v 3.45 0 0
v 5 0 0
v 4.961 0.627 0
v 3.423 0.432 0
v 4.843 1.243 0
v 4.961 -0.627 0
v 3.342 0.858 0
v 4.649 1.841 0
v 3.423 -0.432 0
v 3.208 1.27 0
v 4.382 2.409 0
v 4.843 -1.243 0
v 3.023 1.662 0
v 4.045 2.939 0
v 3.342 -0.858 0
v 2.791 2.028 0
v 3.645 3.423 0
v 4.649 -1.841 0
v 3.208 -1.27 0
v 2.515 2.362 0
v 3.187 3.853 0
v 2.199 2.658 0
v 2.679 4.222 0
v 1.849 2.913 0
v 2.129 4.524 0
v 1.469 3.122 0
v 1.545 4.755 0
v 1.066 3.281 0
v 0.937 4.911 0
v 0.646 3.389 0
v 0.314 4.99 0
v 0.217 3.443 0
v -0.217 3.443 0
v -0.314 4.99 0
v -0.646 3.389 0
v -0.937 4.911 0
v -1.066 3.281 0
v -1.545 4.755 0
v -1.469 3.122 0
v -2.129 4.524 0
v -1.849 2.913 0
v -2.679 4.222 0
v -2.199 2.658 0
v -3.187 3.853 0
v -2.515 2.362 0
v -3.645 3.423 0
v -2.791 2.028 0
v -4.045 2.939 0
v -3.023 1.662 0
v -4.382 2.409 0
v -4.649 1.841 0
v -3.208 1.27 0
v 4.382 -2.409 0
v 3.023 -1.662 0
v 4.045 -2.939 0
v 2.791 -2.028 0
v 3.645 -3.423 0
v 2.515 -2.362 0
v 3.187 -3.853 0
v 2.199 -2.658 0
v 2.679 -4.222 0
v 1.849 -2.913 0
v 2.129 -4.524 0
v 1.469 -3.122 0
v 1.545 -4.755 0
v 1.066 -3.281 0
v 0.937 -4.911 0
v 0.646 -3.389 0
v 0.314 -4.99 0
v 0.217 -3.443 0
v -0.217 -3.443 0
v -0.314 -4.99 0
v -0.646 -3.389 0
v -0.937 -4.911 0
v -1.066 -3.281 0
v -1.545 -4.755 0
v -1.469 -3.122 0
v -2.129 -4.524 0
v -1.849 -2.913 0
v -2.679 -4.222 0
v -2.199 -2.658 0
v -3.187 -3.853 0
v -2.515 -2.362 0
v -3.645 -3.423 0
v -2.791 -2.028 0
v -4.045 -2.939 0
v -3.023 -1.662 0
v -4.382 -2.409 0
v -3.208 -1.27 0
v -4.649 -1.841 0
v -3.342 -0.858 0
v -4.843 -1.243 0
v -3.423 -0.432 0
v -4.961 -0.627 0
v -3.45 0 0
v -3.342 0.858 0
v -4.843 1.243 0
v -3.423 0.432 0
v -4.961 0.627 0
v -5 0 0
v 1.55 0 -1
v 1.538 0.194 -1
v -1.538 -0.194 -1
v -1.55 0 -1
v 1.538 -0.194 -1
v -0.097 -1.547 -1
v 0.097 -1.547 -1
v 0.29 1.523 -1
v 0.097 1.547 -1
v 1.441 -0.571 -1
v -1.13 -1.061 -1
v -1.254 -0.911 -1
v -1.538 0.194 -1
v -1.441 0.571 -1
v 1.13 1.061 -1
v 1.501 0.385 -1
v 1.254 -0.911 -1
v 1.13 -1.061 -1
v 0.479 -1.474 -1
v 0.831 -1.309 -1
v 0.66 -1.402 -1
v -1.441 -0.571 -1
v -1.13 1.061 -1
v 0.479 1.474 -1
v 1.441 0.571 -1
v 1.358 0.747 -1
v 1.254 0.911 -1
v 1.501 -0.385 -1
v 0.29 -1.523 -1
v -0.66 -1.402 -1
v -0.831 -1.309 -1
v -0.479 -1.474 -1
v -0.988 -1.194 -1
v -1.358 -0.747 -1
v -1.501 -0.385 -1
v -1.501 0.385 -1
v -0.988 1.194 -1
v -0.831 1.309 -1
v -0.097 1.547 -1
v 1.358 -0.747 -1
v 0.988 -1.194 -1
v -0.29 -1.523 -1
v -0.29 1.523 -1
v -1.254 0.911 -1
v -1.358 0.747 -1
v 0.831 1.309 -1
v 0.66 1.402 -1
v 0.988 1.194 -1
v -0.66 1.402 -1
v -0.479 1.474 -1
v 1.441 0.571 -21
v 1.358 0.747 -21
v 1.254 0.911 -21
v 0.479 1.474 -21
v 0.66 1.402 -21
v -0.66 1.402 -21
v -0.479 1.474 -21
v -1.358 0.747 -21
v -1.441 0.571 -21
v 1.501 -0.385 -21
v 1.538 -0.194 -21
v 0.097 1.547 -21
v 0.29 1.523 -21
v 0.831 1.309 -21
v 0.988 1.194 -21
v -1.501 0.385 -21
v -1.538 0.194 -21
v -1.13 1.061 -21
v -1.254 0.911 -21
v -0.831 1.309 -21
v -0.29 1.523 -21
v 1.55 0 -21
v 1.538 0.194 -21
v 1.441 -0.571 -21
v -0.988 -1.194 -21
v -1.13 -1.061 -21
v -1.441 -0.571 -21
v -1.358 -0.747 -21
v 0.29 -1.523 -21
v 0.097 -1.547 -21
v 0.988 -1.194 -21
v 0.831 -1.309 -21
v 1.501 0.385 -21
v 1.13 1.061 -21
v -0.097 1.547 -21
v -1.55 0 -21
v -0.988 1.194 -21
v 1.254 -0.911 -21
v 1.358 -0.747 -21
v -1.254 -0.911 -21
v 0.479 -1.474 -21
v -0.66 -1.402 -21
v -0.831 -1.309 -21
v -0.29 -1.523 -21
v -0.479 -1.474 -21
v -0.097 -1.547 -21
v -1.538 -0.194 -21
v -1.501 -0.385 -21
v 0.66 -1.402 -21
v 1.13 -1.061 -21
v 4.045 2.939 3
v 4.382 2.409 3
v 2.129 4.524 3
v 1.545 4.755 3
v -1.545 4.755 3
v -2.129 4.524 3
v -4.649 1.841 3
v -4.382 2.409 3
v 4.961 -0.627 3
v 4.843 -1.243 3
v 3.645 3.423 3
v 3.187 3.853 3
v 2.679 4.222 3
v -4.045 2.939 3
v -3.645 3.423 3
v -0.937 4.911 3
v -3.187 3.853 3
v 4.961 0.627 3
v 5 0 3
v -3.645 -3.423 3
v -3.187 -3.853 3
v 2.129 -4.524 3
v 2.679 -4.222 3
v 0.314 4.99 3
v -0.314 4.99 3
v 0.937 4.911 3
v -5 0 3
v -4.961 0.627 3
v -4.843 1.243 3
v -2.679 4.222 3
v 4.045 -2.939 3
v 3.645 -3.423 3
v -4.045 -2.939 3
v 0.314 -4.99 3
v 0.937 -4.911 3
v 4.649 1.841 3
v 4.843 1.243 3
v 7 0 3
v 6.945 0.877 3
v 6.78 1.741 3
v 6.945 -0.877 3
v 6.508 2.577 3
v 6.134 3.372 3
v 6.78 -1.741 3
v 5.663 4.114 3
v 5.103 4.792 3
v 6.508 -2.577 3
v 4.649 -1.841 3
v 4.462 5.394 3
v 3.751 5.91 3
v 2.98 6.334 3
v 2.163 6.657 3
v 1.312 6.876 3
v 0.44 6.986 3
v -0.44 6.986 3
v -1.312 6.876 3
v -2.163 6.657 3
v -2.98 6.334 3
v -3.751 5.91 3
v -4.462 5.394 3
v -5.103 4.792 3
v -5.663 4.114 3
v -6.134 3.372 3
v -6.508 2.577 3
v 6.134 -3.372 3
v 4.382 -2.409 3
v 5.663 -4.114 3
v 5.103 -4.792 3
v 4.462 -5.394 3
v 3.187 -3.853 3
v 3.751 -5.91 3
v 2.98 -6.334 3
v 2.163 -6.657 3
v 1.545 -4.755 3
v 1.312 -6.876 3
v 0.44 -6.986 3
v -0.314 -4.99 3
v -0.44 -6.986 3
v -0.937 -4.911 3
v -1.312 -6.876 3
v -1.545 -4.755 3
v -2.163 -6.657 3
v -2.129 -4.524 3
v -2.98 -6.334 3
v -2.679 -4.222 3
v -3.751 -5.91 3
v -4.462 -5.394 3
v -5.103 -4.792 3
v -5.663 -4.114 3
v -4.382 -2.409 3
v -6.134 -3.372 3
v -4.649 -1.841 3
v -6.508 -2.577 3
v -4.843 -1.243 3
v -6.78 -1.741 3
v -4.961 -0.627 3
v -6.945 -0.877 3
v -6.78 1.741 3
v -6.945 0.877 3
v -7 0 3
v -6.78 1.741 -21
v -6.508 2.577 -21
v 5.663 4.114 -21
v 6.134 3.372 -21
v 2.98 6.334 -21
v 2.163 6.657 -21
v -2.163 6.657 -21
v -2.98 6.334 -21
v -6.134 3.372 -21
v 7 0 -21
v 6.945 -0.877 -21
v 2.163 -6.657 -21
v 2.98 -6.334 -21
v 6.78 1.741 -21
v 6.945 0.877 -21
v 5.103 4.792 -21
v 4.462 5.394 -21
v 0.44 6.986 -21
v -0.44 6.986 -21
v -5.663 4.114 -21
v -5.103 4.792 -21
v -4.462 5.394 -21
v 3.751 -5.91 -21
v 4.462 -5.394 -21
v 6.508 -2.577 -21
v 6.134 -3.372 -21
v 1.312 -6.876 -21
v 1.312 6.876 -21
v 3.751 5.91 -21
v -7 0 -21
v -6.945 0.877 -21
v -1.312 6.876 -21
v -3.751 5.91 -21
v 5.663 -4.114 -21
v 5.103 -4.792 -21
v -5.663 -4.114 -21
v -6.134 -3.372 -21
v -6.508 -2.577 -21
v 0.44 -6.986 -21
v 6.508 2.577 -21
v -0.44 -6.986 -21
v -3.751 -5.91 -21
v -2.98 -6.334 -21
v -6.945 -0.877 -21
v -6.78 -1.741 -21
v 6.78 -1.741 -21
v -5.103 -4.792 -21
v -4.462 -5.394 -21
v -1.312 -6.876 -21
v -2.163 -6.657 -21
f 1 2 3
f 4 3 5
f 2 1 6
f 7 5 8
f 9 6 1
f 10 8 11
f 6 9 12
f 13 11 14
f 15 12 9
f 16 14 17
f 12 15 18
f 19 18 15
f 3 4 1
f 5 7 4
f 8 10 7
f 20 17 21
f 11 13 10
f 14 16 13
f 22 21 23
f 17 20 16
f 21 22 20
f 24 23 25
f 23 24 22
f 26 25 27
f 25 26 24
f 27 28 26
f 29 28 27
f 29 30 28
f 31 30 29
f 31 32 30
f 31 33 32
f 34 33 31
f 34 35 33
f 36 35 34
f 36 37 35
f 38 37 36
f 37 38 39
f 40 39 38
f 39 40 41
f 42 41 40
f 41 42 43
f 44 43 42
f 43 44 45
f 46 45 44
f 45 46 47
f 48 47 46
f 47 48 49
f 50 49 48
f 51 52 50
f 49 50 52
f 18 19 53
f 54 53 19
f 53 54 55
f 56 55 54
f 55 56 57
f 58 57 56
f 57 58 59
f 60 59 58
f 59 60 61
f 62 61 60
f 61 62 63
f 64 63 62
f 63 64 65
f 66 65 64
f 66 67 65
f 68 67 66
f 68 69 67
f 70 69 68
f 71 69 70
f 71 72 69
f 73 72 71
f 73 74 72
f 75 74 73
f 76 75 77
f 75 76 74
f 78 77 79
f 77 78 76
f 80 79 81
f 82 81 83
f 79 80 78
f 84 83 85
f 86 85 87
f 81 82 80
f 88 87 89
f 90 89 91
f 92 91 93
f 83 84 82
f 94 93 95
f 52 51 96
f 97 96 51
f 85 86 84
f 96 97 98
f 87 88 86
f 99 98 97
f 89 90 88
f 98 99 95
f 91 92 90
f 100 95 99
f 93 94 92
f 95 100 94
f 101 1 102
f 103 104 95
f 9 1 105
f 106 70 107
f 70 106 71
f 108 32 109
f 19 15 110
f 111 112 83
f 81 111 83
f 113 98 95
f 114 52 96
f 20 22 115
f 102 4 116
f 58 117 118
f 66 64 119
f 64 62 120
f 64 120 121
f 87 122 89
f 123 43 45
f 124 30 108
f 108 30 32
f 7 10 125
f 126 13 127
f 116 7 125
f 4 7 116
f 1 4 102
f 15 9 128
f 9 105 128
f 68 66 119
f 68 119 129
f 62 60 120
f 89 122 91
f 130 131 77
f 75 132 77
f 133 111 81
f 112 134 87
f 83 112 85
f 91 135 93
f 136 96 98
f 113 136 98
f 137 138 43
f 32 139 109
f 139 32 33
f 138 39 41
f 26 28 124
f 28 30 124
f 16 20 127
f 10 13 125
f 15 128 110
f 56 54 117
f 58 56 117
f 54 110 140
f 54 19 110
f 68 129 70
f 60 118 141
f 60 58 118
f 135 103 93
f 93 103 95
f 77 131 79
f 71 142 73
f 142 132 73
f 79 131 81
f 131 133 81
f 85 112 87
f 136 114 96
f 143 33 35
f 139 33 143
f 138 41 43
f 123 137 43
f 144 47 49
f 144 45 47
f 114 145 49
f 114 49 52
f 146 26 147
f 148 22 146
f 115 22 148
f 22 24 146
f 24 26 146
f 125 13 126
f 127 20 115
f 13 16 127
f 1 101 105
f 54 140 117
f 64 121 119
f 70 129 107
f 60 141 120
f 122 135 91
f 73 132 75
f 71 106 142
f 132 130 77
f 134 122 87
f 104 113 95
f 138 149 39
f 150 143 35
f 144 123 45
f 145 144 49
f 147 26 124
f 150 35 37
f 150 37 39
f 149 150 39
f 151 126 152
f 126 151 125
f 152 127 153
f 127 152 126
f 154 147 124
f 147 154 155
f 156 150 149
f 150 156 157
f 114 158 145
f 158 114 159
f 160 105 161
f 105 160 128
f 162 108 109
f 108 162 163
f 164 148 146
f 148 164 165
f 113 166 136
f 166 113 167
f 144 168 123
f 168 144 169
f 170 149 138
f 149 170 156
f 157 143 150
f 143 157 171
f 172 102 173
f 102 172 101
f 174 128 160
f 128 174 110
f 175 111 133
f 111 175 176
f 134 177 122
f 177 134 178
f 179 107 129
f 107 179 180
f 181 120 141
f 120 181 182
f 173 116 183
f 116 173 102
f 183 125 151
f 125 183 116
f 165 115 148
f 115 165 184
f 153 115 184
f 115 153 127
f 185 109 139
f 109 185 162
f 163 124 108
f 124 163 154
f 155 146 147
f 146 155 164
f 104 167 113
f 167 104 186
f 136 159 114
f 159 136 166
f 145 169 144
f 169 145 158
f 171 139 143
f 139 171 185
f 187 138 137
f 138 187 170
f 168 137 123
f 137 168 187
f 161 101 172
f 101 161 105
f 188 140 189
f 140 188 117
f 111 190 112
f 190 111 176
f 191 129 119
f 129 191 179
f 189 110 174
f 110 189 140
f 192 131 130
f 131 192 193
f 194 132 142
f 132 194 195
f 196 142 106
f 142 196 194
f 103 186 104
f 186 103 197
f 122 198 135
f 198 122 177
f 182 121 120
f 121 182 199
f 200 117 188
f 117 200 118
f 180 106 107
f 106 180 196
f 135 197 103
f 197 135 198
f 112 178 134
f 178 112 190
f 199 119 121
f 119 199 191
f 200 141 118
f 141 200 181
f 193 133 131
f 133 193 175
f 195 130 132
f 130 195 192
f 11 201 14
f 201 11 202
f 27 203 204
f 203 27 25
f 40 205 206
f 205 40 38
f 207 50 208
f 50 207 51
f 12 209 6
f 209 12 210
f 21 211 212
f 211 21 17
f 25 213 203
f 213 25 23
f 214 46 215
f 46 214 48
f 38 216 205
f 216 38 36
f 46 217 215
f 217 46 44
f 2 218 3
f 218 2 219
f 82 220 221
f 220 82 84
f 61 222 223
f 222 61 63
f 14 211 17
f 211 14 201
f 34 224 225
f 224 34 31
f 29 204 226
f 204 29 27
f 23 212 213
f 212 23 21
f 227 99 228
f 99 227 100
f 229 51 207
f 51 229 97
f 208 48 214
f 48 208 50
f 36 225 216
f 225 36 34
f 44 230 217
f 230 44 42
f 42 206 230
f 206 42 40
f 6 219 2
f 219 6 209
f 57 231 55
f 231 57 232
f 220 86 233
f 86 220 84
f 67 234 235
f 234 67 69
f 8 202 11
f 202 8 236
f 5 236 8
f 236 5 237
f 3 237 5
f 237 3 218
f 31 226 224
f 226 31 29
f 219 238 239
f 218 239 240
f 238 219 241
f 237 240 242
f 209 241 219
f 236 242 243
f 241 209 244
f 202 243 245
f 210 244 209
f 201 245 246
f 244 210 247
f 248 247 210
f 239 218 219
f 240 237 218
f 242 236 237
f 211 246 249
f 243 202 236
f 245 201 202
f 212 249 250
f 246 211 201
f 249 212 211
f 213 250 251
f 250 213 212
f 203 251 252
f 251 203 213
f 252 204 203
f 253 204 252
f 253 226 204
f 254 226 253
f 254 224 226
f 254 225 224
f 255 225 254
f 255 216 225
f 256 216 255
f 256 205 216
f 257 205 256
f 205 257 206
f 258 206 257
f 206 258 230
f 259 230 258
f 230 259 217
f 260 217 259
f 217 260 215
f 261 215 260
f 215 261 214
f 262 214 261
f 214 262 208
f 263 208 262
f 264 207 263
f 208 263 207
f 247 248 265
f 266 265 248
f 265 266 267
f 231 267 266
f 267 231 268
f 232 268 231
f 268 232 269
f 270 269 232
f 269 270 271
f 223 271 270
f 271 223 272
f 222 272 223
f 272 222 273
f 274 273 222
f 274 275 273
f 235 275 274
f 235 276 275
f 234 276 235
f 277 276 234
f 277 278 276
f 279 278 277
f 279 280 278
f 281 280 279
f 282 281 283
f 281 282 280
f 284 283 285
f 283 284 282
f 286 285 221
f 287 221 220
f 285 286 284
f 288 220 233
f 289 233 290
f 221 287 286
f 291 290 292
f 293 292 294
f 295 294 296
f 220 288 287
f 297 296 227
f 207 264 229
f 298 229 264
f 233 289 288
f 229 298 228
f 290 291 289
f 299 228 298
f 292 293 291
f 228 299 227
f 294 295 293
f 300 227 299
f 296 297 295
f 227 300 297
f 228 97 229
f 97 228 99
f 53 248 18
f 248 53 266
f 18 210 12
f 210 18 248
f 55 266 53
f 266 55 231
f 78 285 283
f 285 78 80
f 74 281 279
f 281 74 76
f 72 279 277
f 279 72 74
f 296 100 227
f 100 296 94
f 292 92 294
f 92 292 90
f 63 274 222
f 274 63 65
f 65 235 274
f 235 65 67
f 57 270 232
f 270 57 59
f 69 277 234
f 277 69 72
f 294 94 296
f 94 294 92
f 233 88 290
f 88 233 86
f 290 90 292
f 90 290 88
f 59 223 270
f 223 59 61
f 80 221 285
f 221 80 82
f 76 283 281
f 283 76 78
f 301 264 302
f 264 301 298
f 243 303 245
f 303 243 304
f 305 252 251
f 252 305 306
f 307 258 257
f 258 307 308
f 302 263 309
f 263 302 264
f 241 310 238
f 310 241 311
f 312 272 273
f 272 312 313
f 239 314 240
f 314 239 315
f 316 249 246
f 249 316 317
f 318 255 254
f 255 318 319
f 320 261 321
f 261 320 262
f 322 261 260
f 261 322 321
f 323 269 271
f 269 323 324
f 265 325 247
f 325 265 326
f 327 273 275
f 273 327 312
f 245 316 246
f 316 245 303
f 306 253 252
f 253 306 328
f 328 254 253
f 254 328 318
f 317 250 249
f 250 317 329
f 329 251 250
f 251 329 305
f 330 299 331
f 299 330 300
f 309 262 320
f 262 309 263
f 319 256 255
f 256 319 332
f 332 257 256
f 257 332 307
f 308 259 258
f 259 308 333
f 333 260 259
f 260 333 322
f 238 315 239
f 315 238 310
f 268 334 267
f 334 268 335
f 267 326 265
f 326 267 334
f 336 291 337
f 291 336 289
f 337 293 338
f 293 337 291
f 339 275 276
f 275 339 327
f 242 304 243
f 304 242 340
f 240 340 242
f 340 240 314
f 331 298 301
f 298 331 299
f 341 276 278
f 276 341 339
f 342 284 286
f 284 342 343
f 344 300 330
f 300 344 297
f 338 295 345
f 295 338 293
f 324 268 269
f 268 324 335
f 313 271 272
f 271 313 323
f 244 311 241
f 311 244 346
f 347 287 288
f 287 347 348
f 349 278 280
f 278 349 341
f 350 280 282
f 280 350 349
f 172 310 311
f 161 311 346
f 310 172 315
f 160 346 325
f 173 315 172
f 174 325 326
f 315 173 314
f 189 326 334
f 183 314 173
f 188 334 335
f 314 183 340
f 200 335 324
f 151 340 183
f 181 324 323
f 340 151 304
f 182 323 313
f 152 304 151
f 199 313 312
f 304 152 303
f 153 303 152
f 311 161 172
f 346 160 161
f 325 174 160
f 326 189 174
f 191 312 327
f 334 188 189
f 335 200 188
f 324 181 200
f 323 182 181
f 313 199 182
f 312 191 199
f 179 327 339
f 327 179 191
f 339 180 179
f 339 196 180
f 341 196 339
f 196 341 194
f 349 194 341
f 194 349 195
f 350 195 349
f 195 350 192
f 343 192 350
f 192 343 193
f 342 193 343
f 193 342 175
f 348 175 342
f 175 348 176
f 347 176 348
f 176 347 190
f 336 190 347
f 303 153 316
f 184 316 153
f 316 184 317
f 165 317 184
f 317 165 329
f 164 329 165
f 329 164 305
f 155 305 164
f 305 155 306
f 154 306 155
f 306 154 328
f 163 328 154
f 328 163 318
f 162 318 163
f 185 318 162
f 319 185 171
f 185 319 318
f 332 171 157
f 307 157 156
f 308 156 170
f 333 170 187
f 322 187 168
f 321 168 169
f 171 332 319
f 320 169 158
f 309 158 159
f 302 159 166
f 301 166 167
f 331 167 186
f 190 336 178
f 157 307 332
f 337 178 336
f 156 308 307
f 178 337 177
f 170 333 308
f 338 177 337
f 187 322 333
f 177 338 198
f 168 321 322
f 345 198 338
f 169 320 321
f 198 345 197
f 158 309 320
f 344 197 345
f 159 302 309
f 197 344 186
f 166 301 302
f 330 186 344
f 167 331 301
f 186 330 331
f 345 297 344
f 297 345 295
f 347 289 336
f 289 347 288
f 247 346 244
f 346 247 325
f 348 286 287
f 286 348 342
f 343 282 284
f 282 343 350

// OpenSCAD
$fn = 50;

difference() {
	union() {
		translate(v = [0, 0, -21.0]) {
			cylinder(h = 24, r = 7.0);
		}
	}
	union() {
		translate(v = [0, 0, 0]) {
			rotate(a = [0, 0, 0]) {
				difference() {
					union() {
						translate(v = [0, 0, -24.0]) {
							cylinder(h = 24, r = 1.25);
						}
						translate(v = [0, 0, -1.0]) {
							cylinder(h = 1.0, r1 = 1.55, r2 = 3.45);
						}
						translate(v = [0, 0, -24.0]) {
							cylinder(h = 24, r = 1.55);
						}
						translate(v = [0, 0, -24.0]) {
							cylinder(h = 24, r = 1.25);
						}
					}
					union();
				}
			}
		}
		#cylinder(h = 3, r = 5.0);
	}
}
